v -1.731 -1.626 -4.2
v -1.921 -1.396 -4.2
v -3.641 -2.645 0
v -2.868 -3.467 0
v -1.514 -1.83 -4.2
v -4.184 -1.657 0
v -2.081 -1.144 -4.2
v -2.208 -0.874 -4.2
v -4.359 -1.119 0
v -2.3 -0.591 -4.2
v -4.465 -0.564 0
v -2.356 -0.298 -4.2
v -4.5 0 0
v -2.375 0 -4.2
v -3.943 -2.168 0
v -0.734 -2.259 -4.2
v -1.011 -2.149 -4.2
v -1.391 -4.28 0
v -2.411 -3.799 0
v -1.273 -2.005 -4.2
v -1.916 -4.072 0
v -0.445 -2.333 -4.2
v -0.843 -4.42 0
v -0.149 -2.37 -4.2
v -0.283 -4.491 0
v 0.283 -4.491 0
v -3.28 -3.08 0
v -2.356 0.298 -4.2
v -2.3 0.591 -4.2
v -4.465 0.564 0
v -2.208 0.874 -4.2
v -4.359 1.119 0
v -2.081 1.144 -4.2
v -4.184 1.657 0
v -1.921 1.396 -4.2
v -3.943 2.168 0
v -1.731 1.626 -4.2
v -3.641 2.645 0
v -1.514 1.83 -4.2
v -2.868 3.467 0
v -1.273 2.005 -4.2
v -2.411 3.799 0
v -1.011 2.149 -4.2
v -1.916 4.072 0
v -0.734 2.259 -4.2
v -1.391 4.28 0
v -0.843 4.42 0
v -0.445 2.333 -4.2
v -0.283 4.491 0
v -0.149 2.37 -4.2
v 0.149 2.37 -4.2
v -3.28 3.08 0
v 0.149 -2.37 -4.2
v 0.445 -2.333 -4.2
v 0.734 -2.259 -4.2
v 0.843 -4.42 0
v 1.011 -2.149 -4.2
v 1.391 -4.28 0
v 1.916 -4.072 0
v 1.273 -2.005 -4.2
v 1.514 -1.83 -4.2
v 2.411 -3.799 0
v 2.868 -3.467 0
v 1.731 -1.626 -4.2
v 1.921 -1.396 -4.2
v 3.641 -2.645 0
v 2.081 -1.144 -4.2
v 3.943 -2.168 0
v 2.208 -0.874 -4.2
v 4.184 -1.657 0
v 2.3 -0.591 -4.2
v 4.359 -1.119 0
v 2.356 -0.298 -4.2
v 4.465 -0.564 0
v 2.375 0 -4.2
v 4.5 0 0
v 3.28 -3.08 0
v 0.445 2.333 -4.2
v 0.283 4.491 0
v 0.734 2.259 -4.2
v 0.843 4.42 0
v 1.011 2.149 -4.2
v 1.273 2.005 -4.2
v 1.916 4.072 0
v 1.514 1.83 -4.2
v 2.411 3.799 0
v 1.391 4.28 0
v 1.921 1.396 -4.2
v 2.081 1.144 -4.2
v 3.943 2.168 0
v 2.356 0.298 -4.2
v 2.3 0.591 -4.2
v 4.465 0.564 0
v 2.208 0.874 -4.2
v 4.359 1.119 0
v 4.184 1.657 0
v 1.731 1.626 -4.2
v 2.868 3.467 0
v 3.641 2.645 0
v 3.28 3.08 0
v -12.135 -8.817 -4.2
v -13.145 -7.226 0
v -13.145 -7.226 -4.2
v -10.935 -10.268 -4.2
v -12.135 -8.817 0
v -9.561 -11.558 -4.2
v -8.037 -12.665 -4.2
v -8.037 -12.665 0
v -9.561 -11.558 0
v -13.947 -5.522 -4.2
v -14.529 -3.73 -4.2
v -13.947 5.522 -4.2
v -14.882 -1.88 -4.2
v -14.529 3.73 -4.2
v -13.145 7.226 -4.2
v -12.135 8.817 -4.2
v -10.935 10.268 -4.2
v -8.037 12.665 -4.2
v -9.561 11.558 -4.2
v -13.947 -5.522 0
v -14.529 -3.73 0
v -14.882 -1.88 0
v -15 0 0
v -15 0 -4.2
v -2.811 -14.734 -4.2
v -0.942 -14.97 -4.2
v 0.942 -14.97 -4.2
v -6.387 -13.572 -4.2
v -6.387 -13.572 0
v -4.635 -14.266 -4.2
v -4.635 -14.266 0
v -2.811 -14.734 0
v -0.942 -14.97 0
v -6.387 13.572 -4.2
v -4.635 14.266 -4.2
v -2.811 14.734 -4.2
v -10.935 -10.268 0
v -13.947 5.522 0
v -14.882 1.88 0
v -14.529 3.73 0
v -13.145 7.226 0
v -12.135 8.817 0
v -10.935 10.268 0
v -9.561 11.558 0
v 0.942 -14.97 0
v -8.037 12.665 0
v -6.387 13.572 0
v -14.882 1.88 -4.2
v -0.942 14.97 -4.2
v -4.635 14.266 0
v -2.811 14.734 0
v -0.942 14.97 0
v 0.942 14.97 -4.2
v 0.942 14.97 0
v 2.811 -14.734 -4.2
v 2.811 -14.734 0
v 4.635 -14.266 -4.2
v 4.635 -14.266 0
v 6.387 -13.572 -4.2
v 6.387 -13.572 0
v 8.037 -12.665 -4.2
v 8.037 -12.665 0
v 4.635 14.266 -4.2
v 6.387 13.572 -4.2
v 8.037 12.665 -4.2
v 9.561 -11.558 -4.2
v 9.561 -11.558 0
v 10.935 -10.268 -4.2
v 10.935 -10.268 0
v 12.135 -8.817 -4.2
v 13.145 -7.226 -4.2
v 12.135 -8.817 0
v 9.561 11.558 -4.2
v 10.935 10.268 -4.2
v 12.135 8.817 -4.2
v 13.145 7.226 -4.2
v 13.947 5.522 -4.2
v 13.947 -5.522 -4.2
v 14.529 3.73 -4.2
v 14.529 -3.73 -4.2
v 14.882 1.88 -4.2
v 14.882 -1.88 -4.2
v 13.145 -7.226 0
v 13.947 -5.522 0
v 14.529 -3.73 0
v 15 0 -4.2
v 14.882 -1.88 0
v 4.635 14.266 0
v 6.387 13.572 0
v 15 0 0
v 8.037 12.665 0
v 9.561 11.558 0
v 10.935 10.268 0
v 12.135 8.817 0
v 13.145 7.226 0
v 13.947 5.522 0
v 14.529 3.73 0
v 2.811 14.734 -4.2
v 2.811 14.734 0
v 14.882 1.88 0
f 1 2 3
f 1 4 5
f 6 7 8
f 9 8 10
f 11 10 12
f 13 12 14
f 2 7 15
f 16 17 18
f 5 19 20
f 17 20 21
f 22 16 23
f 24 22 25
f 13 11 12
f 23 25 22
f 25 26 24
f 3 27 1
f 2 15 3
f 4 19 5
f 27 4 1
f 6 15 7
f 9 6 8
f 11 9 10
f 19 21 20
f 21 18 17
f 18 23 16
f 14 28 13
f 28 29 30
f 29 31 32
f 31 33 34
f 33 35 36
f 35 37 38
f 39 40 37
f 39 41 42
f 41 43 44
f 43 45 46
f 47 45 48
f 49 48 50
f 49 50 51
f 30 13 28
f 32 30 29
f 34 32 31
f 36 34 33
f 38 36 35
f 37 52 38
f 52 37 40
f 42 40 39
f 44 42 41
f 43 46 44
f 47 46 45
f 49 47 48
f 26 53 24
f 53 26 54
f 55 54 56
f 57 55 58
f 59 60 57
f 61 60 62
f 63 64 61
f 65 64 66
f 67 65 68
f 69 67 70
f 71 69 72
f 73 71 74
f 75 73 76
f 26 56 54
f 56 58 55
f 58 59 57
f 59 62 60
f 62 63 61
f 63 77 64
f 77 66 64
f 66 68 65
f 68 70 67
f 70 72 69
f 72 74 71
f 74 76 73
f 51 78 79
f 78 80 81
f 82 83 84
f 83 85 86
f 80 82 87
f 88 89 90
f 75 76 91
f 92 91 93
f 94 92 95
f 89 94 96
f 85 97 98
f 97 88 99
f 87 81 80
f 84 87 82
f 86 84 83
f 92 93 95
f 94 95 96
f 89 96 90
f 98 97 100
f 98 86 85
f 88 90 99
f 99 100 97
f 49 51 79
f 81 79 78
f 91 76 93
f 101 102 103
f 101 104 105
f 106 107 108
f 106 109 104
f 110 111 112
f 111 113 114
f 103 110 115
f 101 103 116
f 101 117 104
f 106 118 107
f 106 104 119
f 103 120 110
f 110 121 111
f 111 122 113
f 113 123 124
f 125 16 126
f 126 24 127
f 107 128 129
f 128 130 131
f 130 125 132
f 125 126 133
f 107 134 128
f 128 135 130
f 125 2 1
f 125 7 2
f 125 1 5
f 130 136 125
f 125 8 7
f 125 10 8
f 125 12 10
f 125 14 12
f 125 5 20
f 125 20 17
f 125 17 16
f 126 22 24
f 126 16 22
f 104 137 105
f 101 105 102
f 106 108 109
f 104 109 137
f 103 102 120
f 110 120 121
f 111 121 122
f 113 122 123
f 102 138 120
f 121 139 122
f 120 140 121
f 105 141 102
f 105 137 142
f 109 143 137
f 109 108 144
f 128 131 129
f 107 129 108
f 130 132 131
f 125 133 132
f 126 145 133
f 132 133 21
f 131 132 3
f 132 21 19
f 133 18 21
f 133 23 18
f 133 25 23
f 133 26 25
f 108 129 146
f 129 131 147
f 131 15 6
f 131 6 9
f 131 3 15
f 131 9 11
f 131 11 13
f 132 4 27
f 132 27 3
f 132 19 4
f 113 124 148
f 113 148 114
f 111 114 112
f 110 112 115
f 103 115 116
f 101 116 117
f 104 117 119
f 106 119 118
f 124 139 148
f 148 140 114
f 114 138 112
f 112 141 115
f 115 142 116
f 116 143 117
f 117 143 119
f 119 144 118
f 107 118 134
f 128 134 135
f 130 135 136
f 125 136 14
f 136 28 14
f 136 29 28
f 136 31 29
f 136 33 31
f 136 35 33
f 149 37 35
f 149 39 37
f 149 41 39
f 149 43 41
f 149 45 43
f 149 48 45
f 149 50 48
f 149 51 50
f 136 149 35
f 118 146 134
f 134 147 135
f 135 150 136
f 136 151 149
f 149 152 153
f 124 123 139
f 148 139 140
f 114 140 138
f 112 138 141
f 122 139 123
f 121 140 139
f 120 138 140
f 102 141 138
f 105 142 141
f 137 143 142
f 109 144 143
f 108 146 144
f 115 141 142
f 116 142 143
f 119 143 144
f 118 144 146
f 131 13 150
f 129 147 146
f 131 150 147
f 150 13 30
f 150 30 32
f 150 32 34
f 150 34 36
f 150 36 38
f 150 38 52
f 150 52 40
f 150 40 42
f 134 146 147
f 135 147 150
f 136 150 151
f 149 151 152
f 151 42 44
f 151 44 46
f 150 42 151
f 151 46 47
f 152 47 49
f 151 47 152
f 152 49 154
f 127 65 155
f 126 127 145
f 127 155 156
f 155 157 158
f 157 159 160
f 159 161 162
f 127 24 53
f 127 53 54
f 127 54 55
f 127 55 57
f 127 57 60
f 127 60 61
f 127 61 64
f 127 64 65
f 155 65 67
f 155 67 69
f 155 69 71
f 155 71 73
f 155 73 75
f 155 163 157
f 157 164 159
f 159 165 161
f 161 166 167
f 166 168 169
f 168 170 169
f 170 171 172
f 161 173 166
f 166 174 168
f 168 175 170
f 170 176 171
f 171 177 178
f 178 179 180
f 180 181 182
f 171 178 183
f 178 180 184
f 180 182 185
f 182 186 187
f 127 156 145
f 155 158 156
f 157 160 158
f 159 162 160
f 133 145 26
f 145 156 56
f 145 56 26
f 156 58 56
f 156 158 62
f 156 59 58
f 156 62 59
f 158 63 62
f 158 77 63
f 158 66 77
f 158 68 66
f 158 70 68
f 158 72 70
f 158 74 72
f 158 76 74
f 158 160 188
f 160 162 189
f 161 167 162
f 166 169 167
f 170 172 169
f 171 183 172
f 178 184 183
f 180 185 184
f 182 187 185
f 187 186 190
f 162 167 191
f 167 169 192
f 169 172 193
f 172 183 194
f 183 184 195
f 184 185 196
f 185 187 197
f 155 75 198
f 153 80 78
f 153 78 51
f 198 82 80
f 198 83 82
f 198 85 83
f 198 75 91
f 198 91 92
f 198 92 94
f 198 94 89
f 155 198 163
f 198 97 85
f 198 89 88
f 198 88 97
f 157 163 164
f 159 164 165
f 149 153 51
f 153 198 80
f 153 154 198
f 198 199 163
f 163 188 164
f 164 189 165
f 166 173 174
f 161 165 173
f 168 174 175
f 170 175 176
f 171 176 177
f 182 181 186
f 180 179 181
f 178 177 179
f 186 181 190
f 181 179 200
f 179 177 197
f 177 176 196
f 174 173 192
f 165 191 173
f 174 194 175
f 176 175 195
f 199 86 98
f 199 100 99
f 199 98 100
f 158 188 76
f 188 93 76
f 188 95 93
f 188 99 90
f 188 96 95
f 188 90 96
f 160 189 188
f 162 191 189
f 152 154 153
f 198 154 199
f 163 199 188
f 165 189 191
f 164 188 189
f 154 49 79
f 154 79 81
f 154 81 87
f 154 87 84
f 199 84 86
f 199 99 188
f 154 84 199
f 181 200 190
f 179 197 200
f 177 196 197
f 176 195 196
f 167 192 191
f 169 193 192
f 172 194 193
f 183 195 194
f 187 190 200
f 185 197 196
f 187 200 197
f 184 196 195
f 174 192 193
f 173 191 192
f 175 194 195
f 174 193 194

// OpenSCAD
$fn = 50;

difference() {
	union() {
		translate(v = [0, 0, -4.2]) {
			cylinder(h = 4.2, r = 15.0);
		}
	}
	union() {
		translate(v = [0, 0, 0]) {
			rotate(a = [0, 0, 0]) {
				difference() {
					union() {
						translate(v = [0, 0, -7.2]) {
							cylinder(h = 7.2, r = 2.25);
						}
						translate(v = [0, 0, -4.2]) {
							cylinder(h = 4.2, r1 = 2.375, r2 = 4.5);
						}
						translate(v = [0, 0, -7.2]) {
							cylinder(h = 7.2, r = 2.375);
						}
						translate(v = [0, 0, -7.2]) {
							cylinder(h = 7.2, r = 2.25);
						}
					}
					union();
				}
			}
		}
	}
}
